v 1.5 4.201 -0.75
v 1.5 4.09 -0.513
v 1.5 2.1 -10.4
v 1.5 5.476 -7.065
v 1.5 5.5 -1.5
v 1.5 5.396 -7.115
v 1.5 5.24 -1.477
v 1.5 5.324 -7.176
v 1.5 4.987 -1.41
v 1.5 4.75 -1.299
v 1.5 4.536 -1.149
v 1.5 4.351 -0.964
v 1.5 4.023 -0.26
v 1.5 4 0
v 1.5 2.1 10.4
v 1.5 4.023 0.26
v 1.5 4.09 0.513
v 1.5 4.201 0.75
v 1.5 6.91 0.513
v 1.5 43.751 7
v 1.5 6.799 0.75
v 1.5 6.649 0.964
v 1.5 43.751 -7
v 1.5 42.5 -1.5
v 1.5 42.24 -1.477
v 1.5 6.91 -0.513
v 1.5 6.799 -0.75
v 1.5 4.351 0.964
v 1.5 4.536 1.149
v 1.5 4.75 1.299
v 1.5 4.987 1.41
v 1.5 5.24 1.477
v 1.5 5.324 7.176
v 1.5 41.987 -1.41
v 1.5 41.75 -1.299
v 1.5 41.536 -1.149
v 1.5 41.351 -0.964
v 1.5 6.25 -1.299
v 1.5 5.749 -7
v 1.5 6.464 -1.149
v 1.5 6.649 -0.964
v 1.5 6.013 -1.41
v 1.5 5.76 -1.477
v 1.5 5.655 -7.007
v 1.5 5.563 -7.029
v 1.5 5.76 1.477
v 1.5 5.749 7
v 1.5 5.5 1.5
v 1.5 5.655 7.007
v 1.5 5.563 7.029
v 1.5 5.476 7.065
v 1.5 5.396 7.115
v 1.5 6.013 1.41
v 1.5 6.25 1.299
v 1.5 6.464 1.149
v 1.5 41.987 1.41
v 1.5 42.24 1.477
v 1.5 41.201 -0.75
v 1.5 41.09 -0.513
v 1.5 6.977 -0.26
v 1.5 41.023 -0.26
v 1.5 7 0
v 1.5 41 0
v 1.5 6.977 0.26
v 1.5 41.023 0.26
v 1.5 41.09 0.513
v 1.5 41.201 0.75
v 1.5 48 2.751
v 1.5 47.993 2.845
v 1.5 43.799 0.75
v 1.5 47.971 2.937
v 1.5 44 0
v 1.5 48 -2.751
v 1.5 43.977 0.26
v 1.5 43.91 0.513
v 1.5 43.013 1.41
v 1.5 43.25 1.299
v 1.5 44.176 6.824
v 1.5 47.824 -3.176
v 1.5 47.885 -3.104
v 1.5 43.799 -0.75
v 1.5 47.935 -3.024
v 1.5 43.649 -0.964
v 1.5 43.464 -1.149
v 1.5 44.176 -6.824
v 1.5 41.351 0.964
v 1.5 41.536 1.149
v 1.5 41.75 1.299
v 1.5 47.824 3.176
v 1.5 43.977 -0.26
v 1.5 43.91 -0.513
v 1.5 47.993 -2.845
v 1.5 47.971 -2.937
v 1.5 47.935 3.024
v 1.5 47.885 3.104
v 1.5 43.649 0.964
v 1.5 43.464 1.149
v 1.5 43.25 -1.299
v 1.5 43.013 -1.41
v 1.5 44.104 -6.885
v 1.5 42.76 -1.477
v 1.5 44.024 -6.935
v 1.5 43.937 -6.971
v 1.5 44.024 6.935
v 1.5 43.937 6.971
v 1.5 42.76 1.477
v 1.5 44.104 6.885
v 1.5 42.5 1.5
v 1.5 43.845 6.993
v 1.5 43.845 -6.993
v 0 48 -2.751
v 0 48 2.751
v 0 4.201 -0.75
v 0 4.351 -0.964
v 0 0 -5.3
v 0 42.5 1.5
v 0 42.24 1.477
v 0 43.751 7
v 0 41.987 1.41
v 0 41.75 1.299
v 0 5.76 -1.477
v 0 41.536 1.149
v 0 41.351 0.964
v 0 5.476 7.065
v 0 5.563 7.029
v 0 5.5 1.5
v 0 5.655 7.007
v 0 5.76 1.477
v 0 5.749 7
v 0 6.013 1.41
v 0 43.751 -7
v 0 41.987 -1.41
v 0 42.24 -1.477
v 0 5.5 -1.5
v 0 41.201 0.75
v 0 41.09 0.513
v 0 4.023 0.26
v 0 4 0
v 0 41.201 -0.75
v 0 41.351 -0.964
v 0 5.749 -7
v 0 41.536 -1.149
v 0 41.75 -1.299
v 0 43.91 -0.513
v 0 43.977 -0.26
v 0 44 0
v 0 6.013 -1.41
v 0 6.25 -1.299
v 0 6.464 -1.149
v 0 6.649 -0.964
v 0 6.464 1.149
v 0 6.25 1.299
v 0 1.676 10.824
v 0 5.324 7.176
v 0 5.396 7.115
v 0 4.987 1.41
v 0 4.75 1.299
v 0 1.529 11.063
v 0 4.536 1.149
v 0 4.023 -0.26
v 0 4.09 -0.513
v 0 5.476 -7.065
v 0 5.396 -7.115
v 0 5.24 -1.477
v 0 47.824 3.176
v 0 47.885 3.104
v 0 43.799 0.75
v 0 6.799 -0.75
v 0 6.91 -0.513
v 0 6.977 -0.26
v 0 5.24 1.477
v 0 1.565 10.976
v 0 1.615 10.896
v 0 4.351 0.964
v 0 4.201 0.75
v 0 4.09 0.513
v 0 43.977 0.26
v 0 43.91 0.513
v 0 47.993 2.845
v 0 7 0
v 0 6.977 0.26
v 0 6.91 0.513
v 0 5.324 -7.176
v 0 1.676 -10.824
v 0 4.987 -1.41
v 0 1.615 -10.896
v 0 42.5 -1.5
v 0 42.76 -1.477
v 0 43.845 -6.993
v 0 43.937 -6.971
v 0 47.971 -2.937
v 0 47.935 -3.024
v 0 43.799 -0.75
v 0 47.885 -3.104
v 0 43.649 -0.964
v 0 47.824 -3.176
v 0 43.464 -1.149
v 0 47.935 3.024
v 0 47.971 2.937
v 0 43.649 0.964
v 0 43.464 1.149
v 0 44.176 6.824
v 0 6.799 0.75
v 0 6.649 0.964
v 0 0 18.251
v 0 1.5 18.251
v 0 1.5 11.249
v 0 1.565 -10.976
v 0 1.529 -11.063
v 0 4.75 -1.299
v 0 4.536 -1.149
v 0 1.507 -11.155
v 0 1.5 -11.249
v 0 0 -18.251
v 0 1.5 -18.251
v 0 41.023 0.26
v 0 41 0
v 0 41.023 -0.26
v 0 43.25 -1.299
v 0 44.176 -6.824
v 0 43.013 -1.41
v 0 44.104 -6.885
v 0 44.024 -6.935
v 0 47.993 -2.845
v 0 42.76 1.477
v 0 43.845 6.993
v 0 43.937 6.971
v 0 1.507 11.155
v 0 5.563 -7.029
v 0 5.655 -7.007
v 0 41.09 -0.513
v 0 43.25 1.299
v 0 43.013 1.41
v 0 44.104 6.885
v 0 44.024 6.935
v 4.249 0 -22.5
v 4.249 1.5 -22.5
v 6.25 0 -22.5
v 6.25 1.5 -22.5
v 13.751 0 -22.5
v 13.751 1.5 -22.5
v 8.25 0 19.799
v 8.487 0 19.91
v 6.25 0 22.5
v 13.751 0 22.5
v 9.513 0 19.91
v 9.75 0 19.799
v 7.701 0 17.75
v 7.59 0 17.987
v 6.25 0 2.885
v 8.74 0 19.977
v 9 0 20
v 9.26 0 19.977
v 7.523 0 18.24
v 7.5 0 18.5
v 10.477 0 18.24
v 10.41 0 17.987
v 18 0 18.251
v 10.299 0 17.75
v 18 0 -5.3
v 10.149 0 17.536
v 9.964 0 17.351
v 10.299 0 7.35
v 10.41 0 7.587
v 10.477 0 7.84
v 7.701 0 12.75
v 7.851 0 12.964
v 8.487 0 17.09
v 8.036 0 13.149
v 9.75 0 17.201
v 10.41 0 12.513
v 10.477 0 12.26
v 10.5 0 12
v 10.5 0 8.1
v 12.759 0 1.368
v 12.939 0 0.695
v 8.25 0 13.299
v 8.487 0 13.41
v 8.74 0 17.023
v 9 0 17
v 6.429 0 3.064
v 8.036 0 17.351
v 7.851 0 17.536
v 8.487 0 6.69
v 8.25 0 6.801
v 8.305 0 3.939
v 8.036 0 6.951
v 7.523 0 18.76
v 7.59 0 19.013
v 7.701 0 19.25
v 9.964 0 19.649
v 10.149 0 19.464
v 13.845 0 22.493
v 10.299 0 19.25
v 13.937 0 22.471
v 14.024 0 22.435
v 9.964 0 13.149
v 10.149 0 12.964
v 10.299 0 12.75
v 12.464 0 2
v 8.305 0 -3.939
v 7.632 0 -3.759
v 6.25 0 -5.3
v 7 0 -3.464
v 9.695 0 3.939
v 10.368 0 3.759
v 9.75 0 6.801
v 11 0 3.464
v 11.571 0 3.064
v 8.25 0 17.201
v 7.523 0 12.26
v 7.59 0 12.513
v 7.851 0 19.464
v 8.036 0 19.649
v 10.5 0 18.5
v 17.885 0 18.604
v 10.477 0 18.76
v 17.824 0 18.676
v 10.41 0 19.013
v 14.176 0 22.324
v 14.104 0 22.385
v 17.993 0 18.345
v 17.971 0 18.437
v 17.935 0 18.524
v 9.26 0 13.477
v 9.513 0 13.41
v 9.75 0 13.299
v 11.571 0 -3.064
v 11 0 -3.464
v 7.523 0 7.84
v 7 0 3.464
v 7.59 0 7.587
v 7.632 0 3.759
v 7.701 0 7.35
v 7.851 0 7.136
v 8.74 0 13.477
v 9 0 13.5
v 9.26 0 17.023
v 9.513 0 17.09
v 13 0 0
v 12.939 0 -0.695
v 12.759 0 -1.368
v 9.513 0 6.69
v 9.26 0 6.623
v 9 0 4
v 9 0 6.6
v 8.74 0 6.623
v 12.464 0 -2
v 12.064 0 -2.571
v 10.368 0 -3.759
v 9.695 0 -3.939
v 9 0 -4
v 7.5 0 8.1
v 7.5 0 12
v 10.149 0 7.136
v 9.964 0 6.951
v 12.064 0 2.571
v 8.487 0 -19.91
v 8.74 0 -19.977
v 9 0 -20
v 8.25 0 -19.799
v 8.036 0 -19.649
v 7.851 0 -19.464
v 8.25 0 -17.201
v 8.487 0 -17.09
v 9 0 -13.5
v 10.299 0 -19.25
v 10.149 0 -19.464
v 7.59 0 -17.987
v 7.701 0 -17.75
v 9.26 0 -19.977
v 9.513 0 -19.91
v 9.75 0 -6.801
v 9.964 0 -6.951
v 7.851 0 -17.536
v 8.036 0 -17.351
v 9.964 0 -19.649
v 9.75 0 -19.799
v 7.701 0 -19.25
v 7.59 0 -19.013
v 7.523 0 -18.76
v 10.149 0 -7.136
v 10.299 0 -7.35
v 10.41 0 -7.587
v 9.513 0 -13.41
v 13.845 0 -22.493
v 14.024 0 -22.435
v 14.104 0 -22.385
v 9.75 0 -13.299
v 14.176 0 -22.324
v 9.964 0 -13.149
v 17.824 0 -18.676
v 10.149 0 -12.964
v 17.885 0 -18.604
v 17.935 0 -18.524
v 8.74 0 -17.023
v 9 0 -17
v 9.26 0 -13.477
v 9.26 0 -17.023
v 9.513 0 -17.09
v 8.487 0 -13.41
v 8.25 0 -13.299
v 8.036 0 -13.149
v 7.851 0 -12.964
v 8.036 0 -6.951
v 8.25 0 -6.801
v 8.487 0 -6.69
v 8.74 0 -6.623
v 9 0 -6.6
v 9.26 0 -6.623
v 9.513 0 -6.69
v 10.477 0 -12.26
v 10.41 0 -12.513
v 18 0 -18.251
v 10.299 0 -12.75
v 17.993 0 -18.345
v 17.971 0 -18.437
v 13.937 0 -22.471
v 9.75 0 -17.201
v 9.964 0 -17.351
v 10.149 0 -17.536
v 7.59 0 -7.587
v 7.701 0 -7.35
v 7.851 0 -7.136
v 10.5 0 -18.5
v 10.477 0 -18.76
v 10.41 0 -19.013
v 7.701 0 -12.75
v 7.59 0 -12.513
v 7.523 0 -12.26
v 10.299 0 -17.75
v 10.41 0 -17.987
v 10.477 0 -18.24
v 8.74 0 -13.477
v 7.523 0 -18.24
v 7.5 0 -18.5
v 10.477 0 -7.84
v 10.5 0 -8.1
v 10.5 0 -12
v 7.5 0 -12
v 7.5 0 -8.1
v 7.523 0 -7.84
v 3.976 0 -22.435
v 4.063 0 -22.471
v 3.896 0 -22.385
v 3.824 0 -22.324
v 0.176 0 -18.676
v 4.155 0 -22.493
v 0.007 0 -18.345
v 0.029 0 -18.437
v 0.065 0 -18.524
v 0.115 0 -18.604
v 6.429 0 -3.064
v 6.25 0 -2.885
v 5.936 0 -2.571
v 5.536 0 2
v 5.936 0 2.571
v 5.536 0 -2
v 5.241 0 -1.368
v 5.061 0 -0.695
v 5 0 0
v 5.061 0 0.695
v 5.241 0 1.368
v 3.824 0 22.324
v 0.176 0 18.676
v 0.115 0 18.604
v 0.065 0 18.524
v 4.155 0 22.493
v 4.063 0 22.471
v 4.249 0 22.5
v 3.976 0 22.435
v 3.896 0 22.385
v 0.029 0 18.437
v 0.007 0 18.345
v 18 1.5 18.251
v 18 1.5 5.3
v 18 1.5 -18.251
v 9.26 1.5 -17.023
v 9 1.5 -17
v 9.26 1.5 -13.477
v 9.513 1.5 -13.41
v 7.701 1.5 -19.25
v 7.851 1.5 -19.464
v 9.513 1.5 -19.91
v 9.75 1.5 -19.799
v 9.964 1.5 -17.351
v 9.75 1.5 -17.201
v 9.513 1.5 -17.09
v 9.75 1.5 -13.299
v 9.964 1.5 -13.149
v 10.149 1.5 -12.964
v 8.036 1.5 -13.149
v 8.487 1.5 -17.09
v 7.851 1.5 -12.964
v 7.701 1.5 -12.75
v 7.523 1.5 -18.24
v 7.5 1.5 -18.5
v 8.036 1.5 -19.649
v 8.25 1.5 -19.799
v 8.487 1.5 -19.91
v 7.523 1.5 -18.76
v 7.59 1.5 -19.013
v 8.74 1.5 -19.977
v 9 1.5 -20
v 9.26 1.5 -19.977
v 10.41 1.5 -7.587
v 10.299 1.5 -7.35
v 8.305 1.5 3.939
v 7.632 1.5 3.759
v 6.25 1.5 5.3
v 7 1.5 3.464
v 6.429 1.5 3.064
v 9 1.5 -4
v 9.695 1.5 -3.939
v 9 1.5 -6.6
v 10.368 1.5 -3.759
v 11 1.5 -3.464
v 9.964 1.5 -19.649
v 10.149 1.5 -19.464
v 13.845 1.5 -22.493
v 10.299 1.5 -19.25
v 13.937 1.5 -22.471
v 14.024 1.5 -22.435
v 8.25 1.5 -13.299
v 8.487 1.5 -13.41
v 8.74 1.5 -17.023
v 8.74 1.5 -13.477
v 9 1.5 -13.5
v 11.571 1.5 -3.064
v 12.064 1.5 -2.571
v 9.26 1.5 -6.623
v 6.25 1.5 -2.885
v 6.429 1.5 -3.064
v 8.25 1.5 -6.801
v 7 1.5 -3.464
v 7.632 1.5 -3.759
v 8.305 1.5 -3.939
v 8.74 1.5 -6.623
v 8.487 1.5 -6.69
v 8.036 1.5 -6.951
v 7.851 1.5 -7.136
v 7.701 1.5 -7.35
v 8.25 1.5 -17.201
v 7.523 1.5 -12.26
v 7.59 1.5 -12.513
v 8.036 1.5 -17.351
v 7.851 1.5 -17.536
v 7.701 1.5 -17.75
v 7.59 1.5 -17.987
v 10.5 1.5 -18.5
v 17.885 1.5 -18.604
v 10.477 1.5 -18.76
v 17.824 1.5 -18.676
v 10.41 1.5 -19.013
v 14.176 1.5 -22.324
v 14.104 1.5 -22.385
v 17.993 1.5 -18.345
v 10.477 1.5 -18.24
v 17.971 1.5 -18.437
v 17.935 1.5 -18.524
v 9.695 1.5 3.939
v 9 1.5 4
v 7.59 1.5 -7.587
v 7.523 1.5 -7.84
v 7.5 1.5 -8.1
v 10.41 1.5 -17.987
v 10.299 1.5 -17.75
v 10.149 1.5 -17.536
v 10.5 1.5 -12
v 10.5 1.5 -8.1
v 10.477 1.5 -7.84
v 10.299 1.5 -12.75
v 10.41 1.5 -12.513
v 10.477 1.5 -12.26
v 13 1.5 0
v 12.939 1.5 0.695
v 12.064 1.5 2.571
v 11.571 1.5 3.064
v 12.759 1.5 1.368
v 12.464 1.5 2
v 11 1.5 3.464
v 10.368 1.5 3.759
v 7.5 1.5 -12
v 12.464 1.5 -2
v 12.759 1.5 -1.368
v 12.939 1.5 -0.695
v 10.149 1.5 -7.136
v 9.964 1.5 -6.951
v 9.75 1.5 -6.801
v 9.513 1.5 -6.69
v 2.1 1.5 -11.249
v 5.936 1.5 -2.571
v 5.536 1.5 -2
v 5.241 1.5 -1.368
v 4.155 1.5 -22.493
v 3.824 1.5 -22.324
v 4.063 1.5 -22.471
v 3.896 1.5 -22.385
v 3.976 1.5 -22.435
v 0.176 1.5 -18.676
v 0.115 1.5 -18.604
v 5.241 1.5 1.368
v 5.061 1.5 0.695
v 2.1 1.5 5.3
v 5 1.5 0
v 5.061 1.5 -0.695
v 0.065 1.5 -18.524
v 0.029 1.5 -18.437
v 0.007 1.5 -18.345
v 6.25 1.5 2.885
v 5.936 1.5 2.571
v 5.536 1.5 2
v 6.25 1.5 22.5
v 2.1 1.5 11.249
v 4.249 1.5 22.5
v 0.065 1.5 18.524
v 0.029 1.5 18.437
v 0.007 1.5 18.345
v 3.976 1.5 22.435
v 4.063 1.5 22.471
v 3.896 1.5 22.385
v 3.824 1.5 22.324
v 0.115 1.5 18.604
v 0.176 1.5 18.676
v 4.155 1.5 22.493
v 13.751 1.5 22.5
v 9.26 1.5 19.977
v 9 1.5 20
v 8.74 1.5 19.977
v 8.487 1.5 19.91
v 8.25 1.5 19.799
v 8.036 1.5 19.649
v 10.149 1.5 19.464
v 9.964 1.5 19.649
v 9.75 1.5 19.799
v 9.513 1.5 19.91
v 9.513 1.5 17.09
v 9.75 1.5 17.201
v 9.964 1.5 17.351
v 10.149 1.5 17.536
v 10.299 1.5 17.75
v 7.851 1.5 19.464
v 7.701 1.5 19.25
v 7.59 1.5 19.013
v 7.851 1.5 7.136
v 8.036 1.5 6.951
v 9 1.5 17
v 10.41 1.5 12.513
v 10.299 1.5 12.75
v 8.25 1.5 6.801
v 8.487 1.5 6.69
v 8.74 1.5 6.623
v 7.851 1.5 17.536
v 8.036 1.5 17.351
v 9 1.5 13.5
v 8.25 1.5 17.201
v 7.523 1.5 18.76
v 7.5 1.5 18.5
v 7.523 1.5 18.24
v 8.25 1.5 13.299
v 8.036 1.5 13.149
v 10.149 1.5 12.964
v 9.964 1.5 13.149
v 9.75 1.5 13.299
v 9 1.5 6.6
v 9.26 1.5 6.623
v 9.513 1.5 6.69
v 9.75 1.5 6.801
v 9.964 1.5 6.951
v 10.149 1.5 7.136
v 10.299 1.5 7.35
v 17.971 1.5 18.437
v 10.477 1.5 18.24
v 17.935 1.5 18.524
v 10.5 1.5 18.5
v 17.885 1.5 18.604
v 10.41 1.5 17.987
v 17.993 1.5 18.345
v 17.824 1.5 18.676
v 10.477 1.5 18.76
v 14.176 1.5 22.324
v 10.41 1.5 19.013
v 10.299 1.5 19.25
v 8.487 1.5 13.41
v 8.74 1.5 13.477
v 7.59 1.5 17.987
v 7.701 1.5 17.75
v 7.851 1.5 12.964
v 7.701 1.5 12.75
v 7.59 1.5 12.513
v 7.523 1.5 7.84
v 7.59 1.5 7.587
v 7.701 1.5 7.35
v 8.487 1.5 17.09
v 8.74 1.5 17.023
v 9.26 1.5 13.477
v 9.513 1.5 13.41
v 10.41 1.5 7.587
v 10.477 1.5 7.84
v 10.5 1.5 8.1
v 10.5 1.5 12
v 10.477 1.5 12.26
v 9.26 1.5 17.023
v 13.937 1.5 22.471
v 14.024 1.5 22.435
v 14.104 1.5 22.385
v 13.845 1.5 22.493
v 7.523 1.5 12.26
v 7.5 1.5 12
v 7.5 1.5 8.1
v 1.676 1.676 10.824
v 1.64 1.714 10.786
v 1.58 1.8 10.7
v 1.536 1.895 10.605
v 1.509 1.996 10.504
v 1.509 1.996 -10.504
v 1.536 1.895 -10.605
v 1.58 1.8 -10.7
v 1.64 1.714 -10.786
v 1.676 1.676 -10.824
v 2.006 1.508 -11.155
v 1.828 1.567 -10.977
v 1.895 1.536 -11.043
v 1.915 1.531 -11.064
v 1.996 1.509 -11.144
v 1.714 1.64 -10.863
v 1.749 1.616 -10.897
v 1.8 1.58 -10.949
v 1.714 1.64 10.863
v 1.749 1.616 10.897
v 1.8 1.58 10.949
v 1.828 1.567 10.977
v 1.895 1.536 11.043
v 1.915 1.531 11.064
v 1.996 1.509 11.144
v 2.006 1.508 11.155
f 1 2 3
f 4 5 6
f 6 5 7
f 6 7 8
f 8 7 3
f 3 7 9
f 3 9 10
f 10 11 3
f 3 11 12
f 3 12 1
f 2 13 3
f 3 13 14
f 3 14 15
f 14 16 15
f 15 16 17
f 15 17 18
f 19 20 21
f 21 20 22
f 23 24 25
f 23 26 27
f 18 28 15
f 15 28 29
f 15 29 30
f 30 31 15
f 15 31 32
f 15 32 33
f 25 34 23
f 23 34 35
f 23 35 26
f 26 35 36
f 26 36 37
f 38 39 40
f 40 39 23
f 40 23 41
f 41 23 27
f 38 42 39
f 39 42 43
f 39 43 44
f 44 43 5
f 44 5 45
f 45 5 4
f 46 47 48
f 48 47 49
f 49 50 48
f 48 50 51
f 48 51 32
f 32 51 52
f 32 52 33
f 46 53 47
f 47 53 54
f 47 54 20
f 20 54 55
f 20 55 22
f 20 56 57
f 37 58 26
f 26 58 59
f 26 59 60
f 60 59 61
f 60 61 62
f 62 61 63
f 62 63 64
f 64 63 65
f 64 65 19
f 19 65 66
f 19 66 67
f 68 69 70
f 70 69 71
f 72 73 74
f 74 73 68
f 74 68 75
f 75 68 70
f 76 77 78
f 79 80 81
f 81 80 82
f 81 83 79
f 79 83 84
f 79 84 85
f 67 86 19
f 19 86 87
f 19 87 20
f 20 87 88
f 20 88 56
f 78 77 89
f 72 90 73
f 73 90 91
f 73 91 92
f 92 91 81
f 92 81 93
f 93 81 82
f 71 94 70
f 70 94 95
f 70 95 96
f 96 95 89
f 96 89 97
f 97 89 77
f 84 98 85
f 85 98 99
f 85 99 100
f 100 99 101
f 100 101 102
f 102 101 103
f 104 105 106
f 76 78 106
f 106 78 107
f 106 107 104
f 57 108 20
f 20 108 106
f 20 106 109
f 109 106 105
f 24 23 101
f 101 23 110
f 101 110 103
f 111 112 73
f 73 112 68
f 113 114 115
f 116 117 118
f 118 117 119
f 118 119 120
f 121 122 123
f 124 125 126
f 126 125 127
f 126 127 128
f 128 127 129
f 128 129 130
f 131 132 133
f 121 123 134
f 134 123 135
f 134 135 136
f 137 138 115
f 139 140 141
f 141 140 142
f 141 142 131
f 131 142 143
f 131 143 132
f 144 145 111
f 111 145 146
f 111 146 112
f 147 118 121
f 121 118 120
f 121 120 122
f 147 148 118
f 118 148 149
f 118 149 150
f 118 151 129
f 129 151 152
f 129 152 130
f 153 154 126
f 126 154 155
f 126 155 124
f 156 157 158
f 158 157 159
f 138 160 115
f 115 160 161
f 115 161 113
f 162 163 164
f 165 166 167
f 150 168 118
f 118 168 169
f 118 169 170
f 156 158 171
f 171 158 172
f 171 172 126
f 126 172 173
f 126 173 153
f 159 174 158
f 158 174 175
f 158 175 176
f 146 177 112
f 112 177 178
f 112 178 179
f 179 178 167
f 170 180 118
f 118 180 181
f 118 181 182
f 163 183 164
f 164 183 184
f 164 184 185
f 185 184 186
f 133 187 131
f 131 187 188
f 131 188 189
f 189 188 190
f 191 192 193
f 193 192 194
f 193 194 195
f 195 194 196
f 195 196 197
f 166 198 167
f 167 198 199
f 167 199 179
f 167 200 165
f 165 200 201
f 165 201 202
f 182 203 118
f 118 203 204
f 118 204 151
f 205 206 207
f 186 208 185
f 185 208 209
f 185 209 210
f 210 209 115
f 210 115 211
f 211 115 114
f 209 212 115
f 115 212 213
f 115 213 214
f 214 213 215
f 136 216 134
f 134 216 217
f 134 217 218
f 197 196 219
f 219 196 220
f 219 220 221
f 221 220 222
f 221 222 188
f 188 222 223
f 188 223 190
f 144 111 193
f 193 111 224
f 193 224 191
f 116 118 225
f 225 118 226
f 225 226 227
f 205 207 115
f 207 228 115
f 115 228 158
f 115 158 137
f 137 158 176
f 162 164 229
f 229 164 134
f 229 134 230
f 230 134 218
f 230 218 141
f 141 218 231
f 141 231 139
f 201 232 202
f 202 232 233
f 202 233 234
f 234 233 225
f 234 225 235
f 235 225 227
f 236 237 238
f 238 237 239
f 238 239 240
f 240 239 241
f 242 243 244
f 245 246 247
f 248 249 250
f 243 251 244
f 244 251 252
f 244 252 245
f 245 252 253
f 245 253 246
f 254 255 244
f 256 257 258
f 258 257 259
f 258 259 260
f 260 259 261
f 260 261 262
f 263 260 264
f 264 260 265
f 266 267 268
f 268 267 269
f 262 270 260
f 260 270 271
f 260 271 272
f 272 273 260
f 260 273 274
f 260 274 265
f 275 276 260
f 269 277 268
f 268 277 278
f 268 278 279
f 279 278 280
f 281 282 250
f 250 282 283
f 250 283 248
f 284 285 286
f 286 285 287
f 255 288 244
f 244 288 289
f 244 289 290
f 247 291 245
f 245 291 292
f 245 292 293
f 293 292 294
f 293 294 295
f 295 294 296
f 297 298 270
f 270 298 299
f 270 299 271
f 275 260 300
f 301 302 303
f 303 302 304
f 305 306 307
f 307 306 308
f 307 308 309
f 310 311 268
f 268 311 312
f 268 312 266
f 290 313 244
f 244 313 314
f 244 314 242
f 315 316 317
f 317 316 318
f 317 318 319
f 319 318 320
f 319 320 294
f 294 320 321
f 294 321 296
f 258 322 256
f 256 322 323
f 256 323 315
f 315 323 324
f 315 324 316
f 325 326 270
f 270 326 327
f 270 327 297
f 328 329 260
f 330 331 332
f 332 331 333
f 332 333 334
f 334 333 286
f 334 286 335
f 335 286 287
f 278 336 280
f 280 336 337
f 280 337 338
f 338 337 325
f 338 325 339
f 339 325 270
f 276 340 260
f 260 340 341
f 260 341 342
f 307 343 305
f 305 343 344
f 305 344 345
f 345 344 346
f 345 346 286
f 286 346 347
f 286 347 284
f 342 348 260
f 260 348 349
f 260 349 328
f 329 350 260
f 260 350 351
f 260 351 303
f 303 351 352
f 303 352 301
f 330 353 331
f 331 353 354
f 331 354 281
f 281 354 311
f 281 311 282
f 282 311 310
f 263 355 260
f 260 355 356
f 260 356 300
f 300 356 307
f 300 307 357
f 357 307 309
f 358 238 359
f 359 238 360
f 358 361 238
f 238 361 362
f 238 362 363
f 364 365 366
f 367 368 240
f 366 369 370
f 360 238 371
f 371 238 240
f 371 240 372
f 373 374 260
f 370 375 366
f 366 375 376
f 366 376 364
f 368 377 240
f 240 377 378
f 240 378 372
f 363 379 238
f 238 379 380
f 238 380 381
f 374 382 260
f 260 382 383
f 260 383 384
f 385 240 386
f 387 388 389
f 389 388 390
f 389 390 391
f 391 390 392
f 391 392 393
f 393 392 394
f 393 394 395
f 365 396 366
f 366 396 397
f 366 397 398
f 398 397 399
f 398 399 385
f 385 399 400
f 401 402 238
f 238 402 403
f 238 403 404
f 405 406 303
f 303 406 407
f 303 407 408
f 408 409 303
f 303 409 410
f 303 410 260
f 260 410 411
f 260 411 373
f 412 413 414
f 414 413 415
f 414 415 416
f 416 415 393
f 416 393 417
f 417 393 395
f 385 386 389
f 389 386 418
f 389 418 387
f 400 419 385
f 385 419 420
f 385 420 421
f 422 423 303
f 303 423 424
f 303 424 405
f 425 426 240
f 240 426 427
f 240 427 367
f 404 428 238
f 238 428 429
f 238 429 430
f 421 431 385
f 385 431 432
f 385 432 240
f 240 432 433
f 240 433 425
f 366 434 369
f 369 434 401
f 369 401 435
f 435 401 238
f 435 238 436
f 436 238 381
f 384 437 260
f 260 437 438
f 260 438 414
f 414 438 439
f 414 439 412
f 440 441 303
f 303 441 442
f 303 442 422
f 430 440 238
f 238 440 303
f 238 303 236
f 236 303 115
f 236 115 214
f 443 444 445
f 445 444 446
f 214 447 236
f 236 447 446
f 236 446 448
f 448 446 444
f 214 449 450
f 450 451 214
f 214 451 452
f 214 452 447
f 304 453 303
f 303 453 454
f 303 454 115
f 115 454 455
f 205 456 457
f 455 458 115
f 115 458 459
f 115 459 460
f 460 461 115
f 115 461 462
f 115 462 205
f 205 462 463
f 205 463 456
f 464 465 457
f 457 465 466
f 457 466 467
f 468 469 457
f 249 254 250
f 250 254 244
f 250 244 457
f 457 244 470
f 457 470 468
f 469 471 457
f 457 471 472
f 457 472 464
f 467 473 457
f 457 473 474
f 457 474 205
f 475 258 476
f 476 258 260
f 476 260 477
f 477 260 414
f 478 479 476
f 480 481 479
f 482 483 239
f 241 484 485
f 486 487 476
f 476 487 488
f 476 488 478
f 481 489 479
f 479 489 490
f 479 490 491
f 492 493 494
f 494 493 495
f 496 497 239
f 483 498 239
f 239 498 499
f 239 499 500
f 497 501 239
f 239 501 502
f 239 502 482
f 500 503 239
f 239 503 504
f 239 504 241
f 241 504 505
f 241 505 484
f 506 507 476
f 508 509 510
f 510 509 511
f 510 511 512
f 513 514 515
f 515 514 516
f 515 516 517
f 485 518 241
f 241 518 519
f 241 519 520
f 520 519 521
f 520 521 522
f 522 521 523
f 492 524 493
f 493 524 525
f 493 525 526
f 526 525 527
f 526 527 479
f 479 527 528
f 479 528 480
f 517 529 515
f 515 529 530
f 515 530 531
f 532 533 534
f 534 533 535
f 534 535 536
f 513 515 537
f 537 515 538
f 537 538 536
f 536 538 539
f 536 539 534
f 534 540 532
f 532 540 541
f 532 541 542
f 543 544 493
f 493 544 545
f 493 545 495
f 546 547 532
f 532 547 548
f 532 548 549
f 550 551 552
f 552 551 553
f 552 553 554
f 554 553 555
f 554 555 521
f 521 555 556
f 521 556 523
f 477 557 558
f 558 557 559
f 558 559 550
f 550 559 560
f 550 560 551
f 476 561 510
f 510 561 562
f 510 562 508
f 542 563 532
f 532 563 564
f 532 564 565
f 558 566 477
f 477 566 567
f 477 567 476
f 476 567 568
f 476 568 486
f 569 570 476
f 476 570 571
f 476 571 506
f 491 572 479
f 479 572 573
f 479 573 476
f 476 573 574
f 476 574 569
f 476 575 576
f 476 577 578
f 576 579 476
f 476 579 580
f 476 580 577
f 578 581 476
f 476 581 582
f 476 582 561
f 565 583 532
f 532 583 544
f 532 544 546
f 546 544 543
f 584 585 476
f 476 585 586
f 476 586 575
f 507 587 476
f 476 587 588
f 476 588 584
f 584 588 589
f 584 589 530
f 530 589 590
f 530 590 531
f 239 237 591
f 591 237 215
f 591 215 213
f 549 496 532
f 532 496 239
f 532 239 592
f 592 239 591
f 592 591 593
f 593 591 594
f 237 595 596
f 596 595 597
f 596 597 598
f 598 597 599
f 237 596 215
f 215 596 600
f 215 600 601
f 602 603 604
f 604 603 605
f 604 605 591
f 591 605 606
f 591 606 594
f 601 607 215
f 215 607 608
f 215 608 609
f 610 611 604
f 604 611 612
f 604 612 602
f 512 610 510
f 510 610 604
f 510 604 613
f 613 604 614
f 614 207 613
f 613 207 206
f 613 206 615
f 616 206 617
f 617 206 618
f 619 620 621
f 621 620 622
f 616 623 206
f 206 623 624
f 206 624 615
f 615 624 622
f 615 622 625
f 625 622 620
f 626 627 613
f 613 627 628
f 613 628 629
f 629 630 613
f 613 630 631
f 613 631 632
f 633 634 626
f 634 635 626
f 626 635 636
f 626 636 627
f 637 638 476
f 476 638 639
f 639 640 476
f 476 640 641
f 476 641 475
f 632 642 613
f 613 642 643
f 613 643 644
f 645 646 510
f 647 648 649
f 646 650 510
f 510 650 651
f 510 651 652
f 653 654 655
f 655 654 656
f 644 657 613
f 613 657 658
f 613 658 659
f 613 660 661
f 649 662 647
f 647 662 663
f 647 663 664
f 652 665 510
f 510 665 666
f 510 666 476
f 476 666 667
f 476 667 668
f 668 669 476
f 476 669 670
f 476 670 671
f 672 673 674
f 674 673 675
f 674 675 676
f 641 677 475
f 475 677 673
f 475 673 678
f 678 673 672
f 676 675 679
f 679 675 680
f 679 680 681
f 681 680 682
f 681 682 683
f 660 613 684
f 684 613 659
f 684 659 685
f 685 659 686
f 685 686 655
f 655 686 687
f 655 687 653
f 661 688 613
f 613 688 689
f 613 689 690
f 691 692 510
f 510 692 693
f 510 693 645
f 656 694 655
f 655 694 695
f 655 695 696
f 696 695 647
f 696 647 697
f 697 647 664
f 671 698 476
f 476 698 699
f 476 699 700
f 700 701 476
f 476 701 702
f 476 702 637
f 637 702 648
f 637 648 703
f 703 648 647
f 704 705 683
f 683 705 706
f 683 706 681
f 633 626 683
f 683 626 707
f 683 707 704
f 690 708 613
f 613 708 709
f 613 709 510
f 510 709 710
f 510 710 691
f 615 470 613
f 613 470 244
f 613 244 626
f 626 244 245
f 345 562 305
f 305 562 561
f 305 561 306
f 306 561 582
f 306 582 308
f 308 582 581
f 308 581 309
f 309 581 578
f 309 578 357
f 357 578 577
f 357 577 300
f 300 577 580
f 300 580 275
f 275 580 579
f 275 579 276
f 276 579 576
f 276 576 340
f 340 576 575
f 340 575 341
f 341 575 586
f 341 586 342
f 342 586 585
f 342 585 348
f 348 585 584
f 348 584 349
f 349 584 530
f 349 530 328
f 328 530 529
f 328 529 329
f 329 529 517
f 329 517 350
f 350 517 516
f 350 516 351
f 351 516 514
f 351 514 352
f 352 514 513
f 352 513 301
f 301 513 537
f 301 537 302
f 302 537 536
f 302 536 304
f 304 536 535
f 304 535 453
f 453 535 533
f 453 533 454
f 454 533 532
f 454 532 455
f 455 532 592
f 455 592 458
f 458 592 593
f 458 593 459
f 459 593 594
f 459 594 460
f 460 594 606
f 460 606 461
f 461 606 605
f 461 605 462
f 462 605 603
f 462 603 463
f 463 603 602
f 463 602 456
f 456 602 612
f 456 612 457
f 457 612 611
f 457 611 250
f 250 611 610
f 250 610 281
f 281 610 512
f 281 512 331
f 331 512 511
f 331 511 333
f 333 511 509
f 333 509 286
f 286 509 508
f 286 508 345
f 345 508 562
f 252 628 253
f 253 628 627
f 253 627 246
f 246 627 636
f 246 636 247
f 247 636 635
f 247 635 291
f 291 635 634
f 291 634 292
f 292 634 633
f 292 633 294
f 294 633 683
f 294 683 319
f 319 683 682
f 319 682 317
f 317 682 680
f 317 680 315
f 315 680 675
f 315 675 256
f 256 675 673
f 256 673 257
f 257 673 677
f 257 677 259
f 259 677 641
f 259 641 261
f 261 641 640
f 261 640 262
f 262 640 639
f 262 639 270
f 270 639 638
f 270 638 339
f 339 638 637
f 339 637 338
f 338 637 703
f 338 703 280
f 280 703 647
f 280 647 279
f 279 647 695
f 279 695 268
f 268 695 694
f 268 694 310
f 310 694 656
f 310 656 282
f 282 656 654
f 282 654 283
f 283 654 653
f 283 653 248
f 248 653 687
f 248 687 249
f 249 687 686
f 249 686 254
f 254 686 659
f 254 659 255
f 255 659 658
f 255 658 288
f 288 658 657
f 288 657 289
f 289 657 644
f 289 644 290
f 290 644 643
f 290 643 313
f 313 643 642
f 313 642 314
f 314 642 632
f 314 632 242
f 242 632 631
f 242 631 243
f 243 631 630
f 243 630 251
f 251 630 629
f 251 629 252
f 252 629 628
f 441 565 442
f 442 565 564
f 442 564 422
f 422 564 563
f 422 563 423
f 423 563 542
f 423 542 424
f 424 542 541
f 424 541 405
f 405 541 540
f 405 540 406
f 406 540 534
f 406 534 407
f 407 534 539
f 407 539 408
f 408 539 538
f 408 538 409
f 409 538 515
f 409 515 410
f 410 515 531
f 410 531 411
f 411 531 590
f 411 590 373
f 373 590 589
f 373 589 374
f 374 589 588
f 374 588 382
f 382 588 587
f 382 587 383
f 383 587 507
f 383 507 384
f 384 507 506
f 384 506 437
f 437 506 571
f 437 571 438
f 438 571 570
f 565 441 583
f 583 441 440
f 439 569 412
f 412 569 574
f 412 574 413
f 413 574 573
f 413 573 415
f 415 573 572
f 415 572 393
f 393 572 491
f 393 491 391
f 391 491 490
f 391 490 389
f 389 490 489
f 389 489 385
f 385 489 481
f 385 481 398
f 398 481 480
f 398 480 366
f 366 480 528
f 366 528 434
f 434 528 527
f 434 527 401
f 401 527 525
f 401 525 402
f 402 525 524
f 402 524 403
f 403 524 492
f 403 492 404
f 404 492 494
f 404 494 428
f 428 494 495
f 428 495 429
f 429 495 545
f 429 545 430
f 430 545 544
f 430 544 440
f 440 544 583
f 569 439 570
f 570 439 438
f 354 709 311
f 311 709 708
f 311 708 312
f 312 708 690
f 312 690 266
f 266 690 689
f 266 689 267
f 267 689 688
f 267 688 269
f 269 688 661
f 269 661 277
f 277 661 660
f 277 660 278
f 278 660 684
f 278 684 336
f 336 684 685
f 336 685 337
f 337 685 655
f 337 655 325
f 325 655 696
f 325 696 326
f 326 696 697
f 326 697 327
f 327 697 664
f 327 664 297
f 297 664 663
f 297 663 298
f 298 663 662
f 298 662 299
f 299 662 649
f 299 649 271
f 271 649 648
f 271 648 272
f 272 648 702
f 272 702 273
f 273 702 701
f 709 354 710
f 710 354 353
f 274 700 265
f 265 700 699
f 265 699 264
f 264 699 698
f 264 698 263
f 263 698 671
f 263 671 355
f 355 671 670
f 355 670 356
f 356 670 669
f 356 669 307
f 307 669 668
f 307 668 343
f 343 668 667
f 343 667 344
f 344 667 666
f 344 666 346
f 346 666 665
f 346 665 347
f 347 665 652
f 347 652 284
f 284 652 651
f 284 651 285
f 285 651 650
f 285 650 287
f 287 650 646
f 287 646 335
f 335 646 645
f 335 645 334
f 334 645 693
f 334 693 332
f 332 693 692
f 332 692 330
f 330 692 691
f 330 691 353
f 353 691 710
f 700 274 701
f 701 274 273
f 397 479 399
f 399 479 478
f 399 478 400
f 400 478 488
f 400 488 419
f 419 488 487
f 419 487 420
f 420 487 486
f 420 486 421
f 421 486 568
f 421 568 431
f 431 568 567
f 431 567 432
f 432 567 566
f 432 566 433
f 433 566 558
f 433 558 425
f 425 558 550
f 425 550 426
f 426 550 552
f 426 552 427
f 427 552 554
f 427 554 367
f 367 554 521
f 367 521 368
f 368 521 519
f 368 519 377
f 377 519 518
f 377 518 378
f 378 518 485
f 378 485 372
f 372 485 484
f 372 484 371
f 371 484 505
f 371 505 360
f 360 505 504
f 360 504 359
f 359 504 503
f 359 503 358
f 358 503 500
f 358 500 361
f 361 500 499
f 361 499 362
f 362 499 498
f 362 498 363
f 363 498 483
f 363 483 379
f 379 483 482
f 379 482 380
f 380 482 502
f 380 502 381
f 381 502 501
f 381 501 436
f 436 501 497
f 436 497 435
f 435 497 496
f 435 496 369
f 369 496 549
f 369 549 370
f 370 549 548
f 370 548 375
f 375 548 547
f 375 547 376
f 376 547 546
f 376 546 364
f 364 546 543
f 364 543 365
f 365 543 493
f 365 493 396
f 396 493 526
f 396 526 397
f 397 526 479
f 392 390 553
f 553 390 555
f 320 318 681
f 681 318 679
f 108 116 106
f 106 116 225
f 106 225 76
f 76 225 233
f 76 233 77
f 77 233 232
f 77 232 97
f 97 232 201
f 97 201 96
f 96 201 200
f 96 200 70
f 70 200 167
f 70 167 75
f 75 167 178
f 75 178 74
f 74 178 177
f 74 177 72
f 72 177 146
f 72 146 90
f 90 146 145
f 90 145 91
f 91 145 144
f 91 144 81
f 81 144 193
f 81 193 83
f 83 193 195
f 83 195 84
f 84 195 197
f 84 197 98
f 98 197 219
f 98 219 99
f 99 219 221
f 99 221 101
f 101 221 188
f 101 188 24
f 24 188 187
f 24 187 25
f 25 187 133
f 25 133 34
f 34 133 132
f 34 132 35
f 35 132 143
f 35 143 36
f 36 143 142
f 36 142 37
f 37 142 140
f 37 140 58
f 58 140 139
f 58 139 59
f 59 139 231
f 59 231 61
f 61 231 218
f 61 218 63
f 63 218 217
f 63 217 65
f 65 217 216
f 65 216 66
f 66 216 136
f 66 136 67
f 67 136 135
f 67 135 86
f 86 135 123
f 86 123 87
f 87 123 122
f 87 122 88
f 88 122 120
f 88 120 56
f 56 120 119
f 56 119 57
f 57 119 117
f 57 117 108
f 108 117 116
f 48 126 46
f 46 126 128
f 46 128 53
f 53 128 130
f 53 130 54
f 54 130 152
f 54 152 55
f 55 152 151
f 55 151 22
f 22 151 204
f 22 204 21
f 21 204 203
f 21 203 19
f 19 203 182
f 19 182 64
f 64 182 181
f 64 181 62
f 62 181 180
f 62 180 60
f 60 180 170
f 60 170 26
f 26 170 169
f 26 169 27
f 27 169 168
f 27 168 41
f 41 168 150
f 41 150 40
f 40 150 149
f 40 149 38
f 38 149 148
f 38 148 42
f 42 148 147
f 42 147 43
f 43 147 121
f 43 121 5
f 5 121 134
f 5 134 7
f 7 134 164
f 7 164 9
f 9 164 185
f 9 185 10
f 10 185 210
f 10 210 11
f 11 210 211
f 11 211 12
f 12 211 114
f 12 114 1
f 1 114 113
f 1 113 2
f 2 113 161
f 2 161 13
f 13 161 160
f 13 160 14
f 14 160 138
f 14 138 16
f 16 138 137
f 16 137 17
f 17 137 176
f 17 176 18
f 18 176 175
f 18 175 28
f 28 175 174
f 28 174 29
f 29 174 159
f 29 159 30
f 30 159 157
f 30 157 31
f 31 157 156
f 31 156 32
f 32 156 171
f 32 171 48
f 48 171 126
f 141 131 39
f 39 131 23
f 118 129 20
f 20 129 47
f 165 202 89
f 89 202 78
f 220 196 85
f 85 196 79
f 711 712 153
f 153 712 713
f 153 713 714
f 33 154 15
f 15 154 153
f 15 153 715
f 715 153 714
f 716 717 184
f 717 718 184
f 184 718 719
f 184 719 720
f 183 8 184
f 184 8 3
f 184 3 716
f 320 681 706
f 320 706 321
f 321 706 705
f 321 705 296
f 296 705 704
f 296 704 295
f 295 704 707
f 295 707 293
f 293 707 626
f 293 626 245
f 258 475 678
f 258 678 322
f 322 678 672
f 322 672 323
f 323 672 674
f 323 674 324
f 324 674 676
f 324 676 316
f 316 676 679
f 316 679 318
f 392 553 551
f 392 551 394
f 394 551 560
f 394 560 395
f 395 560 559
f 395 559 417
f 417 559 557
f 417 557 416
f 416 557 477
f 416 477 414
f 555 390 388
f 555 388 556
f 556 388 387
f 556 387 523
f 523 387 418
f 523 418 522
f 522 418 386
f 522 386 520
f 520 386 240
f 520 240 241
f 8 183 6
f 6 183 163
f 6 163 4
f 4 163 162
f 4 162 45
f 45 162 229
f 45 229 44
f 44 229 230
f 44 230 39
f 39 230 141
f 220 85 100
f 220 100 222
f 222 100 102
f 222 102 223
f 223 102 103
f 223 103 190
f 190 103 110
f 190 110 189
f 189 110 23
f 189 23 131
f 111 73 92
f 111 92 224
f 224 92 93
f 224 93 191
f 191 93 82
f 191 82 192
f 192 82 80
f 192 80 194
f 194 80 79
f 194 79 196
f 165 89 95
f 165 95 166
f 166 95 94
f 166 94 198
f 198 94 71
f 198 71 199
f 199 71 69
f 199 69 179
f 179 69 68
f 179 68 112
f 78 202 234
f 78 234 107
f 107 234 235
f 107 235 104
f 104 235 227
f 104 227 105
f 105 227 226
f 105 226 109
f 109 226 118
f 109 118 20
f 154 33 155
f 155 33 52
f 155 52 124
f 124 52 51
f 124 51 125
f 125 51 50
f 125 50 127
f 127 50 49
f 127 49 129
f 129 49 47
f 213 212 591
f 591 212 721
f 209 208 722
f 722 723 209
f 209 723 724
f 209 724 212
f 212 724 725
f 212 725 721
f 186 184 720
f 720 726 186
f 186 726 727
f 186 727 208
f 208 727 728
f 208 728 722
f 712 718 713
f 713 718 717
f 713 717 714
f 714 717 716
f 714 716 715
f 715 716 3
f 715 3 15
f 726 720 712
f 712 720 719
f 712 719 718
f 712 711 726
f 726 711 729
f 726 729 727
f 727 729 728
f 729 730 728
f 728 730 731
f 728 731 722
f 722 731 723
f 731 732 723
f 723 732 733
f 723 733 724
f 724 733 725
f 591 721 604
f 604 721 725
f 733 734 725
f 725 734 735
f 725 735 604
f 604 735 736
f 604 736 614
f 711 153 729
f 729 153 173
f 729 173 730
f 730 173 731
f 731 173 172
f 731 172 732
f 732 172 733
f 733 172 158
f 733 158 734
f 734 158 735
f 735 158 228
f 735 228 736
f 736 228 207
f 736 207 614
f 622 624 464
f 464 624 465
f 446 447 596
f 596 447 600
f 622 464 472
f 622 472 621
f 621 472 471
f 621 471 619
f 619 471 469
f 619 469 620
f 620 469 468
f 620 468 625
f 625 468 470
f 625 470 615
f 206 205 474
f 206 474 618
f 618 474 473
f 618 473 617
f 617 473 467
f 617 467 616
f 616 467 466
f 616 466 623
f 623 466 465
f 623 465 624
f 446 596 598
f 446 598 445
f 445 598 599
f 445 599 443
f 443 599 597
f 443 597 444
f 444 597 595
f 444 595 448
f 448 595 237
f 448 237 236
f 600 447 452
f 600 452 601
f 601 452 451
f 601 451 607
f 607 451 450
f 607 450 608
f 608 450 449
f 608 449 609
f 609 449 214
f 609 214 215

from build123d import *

# Parameters (mm, degrees)
EXTRUDE_1_DEPTH     = 22.5
SKETCH_2_R          = 4
SKETCH_2_R_2        = 1.5
CUT_EXTRUDE_1_DEPTH = 45.2
CHAMFER_1_SIZE      = 4
SKETCH_4_R          = 1.5
CUT_EXTRUDE_2_DEPTH = 56.98437282
CUT_EXTRUDE_3_DEPTH = 10
CHAMFER_2_SIZE      = 4
CHAMFER_4_SIZE      = 4
FILLET_2_R          = 0.6
CHAMFER_5_SIZE      = 4
FILLET_3_R          = 0.6


with BuildPart() as part:
    # Эскиз1 → Бобышка-Вытянуть1 (new, symmetric)
    with BuildSketch(Plane.XY):
        Polygon((0, 0), (0, 48), (1.5, 48), (1.5, 1.5), (18, 1.5), (18, 0), align=None)
    extrude(amount=EXTRUDE_1_DEPTH, both=True)

    # Эскиз2 → Вырез-Вытянуть1 (cut)
    with BuildSketch(Plane(origin=(0, 1.5, 0), x_dir=(1, 0, 0), z_dir=(0, 1, 0))):
        with Locations((9, 0)):
            Circle(SKETCH_2_R)
        with Locations((9, 18.5)):
            Circle(SKETCH_2_R_2)
        with Locations((9, -18.5)):
            Circle(SKETCH_2_R_2)
        with BuildLine():
            Line((7.5, 8.1), (7.5, 12))
            ThreePointArc((7.5, 12), (9, 13.5), (10.5, 12))
            Line((10.5, 12), (10.5, 8.1))
            ThreePointArc((10.5, 8.1), (9, 6.6), (7.5, 8.1))
        make_face()
        with BuildLine():
            Line((10.5, -12), (10.5, -8.1))
            ThreePointArc((10.5, -8.1), (9, -6.6), (7.5, -8.1))
            Line((7.5, -8.1), (7.5, -12))
            ThreePointArc((7.5, -12), (9, -13.5), (10.5, -12))
        make_face()
    extrude(amount=-CUT_EXTRUDE_1_DEPTH, mode=Mode.SUBTRACT)

    # Фаска1
    chamfer_1_edges = [part.edges().sort_by_distance(p)[0] for p in [
        (18, 0.75, -22.5),
        (18, 0.75, 22.5),
        (0.75, 48, 22.5),
        (0.75, 48, -22.5),
    ]]
    chamfer(chamfer_1_edges, length=CHAMFER_1_SIZE)

    # Эскиз4 → Вырез-Вытянуть2 (cut, through all)
    with BuildSketch(Plane.ZY):
        with Locations((0, 42.5)):
            Circle(SKETCH_4_R)
        with Locations((0, 5.5)):
            Circle(SKETCH_4_R)
    extrude(amount=-CUT_EXTRUDE_2_DEPTH, mode=Mode.SUBTRACT)

    # Эскиз6 → Вырез-Вытянуть3 (cut)
    with BuildSketch(Plane.ZY):
        Polygon((7, 48), (7, 1.5), (33.1795091, 1.5), (33.1795091, 42.5), (33.38840833, 42.5), (33.38840833, 72.5), (7, 72.5), align=None)
        Polygon((-7, 72.5), (-33.38840833, 72.5), (-33.38840833, 42.5), (-22.5, 42.5), (-22.5, 1.5), (-7, 1.5), align=None)
    extrude(amount=-CUT_EXTRUDE_3_DEPTH, mode=Mode.SUBTRACT)

    # Фаска2
    chamfer_2_edges = [part.edges().sort_by_distance(p)[0] for p in [
        (0.75, 48, 7),
        (0.75, 48, -7),
    ]]
    chamfer(chamfer_2_edges, length=CHAMFER_2_SIZE)

    # Фаска4
    chamfer_4_edges = [part.edges().sort_by_distance(p)[0] for p in [
        (0.75, 1.5, 7),
        (0.75, 1.5, -7),
    ]]
    chamfer(chamfer_4_edges, length=CHAMFER_4_SIZE)

    # Скругление2
    fillet_2_edges = [part.edges().sort_by_distance(p)[0] for p in [
        (14, 0.75, 22.5),
        (18, 0.75, 18.5),
        (18, 0.75, -18.5),
        (14, 0.75, -22.5),
        (0.75, 5.5, -7),
        (0.75, 44, -7),
        (0.75, 48, -3),
        (0.75, 48, 3),
        (0.75, 44, 7),
        (0.75, 5.5, 7),
        (0.75, 1.5, 11),
        (0.75, 1.5, -11),
        (1.5, 1.5, 0),
    ]]
    fillet(fillet_2_edges, radius=FILLET_2_R)

    # Фаска5
    chamfer_5_edges = [part.edges().sort_by_distance(p)[0] for p in [
        (0, 0.75, 22.5),
        (0, 0.75, -22.5),
    ]]
    chamfer(chamfer_5_edges, length=CHAMFER_5_SIZE)

    # Скругление3
    fillet_3_edges = [part.edges().sort_by_distance(p)[0] for p in [
        (4, 0.75, 22.5),
        (0, 0.75, 18.5),
        (4, 0.75, -22.5),
        (0, 0.75, -18.5),
    ]]
    fillet(fillet_3_edges, radius=FILLET_3_R)


solid = part.part
